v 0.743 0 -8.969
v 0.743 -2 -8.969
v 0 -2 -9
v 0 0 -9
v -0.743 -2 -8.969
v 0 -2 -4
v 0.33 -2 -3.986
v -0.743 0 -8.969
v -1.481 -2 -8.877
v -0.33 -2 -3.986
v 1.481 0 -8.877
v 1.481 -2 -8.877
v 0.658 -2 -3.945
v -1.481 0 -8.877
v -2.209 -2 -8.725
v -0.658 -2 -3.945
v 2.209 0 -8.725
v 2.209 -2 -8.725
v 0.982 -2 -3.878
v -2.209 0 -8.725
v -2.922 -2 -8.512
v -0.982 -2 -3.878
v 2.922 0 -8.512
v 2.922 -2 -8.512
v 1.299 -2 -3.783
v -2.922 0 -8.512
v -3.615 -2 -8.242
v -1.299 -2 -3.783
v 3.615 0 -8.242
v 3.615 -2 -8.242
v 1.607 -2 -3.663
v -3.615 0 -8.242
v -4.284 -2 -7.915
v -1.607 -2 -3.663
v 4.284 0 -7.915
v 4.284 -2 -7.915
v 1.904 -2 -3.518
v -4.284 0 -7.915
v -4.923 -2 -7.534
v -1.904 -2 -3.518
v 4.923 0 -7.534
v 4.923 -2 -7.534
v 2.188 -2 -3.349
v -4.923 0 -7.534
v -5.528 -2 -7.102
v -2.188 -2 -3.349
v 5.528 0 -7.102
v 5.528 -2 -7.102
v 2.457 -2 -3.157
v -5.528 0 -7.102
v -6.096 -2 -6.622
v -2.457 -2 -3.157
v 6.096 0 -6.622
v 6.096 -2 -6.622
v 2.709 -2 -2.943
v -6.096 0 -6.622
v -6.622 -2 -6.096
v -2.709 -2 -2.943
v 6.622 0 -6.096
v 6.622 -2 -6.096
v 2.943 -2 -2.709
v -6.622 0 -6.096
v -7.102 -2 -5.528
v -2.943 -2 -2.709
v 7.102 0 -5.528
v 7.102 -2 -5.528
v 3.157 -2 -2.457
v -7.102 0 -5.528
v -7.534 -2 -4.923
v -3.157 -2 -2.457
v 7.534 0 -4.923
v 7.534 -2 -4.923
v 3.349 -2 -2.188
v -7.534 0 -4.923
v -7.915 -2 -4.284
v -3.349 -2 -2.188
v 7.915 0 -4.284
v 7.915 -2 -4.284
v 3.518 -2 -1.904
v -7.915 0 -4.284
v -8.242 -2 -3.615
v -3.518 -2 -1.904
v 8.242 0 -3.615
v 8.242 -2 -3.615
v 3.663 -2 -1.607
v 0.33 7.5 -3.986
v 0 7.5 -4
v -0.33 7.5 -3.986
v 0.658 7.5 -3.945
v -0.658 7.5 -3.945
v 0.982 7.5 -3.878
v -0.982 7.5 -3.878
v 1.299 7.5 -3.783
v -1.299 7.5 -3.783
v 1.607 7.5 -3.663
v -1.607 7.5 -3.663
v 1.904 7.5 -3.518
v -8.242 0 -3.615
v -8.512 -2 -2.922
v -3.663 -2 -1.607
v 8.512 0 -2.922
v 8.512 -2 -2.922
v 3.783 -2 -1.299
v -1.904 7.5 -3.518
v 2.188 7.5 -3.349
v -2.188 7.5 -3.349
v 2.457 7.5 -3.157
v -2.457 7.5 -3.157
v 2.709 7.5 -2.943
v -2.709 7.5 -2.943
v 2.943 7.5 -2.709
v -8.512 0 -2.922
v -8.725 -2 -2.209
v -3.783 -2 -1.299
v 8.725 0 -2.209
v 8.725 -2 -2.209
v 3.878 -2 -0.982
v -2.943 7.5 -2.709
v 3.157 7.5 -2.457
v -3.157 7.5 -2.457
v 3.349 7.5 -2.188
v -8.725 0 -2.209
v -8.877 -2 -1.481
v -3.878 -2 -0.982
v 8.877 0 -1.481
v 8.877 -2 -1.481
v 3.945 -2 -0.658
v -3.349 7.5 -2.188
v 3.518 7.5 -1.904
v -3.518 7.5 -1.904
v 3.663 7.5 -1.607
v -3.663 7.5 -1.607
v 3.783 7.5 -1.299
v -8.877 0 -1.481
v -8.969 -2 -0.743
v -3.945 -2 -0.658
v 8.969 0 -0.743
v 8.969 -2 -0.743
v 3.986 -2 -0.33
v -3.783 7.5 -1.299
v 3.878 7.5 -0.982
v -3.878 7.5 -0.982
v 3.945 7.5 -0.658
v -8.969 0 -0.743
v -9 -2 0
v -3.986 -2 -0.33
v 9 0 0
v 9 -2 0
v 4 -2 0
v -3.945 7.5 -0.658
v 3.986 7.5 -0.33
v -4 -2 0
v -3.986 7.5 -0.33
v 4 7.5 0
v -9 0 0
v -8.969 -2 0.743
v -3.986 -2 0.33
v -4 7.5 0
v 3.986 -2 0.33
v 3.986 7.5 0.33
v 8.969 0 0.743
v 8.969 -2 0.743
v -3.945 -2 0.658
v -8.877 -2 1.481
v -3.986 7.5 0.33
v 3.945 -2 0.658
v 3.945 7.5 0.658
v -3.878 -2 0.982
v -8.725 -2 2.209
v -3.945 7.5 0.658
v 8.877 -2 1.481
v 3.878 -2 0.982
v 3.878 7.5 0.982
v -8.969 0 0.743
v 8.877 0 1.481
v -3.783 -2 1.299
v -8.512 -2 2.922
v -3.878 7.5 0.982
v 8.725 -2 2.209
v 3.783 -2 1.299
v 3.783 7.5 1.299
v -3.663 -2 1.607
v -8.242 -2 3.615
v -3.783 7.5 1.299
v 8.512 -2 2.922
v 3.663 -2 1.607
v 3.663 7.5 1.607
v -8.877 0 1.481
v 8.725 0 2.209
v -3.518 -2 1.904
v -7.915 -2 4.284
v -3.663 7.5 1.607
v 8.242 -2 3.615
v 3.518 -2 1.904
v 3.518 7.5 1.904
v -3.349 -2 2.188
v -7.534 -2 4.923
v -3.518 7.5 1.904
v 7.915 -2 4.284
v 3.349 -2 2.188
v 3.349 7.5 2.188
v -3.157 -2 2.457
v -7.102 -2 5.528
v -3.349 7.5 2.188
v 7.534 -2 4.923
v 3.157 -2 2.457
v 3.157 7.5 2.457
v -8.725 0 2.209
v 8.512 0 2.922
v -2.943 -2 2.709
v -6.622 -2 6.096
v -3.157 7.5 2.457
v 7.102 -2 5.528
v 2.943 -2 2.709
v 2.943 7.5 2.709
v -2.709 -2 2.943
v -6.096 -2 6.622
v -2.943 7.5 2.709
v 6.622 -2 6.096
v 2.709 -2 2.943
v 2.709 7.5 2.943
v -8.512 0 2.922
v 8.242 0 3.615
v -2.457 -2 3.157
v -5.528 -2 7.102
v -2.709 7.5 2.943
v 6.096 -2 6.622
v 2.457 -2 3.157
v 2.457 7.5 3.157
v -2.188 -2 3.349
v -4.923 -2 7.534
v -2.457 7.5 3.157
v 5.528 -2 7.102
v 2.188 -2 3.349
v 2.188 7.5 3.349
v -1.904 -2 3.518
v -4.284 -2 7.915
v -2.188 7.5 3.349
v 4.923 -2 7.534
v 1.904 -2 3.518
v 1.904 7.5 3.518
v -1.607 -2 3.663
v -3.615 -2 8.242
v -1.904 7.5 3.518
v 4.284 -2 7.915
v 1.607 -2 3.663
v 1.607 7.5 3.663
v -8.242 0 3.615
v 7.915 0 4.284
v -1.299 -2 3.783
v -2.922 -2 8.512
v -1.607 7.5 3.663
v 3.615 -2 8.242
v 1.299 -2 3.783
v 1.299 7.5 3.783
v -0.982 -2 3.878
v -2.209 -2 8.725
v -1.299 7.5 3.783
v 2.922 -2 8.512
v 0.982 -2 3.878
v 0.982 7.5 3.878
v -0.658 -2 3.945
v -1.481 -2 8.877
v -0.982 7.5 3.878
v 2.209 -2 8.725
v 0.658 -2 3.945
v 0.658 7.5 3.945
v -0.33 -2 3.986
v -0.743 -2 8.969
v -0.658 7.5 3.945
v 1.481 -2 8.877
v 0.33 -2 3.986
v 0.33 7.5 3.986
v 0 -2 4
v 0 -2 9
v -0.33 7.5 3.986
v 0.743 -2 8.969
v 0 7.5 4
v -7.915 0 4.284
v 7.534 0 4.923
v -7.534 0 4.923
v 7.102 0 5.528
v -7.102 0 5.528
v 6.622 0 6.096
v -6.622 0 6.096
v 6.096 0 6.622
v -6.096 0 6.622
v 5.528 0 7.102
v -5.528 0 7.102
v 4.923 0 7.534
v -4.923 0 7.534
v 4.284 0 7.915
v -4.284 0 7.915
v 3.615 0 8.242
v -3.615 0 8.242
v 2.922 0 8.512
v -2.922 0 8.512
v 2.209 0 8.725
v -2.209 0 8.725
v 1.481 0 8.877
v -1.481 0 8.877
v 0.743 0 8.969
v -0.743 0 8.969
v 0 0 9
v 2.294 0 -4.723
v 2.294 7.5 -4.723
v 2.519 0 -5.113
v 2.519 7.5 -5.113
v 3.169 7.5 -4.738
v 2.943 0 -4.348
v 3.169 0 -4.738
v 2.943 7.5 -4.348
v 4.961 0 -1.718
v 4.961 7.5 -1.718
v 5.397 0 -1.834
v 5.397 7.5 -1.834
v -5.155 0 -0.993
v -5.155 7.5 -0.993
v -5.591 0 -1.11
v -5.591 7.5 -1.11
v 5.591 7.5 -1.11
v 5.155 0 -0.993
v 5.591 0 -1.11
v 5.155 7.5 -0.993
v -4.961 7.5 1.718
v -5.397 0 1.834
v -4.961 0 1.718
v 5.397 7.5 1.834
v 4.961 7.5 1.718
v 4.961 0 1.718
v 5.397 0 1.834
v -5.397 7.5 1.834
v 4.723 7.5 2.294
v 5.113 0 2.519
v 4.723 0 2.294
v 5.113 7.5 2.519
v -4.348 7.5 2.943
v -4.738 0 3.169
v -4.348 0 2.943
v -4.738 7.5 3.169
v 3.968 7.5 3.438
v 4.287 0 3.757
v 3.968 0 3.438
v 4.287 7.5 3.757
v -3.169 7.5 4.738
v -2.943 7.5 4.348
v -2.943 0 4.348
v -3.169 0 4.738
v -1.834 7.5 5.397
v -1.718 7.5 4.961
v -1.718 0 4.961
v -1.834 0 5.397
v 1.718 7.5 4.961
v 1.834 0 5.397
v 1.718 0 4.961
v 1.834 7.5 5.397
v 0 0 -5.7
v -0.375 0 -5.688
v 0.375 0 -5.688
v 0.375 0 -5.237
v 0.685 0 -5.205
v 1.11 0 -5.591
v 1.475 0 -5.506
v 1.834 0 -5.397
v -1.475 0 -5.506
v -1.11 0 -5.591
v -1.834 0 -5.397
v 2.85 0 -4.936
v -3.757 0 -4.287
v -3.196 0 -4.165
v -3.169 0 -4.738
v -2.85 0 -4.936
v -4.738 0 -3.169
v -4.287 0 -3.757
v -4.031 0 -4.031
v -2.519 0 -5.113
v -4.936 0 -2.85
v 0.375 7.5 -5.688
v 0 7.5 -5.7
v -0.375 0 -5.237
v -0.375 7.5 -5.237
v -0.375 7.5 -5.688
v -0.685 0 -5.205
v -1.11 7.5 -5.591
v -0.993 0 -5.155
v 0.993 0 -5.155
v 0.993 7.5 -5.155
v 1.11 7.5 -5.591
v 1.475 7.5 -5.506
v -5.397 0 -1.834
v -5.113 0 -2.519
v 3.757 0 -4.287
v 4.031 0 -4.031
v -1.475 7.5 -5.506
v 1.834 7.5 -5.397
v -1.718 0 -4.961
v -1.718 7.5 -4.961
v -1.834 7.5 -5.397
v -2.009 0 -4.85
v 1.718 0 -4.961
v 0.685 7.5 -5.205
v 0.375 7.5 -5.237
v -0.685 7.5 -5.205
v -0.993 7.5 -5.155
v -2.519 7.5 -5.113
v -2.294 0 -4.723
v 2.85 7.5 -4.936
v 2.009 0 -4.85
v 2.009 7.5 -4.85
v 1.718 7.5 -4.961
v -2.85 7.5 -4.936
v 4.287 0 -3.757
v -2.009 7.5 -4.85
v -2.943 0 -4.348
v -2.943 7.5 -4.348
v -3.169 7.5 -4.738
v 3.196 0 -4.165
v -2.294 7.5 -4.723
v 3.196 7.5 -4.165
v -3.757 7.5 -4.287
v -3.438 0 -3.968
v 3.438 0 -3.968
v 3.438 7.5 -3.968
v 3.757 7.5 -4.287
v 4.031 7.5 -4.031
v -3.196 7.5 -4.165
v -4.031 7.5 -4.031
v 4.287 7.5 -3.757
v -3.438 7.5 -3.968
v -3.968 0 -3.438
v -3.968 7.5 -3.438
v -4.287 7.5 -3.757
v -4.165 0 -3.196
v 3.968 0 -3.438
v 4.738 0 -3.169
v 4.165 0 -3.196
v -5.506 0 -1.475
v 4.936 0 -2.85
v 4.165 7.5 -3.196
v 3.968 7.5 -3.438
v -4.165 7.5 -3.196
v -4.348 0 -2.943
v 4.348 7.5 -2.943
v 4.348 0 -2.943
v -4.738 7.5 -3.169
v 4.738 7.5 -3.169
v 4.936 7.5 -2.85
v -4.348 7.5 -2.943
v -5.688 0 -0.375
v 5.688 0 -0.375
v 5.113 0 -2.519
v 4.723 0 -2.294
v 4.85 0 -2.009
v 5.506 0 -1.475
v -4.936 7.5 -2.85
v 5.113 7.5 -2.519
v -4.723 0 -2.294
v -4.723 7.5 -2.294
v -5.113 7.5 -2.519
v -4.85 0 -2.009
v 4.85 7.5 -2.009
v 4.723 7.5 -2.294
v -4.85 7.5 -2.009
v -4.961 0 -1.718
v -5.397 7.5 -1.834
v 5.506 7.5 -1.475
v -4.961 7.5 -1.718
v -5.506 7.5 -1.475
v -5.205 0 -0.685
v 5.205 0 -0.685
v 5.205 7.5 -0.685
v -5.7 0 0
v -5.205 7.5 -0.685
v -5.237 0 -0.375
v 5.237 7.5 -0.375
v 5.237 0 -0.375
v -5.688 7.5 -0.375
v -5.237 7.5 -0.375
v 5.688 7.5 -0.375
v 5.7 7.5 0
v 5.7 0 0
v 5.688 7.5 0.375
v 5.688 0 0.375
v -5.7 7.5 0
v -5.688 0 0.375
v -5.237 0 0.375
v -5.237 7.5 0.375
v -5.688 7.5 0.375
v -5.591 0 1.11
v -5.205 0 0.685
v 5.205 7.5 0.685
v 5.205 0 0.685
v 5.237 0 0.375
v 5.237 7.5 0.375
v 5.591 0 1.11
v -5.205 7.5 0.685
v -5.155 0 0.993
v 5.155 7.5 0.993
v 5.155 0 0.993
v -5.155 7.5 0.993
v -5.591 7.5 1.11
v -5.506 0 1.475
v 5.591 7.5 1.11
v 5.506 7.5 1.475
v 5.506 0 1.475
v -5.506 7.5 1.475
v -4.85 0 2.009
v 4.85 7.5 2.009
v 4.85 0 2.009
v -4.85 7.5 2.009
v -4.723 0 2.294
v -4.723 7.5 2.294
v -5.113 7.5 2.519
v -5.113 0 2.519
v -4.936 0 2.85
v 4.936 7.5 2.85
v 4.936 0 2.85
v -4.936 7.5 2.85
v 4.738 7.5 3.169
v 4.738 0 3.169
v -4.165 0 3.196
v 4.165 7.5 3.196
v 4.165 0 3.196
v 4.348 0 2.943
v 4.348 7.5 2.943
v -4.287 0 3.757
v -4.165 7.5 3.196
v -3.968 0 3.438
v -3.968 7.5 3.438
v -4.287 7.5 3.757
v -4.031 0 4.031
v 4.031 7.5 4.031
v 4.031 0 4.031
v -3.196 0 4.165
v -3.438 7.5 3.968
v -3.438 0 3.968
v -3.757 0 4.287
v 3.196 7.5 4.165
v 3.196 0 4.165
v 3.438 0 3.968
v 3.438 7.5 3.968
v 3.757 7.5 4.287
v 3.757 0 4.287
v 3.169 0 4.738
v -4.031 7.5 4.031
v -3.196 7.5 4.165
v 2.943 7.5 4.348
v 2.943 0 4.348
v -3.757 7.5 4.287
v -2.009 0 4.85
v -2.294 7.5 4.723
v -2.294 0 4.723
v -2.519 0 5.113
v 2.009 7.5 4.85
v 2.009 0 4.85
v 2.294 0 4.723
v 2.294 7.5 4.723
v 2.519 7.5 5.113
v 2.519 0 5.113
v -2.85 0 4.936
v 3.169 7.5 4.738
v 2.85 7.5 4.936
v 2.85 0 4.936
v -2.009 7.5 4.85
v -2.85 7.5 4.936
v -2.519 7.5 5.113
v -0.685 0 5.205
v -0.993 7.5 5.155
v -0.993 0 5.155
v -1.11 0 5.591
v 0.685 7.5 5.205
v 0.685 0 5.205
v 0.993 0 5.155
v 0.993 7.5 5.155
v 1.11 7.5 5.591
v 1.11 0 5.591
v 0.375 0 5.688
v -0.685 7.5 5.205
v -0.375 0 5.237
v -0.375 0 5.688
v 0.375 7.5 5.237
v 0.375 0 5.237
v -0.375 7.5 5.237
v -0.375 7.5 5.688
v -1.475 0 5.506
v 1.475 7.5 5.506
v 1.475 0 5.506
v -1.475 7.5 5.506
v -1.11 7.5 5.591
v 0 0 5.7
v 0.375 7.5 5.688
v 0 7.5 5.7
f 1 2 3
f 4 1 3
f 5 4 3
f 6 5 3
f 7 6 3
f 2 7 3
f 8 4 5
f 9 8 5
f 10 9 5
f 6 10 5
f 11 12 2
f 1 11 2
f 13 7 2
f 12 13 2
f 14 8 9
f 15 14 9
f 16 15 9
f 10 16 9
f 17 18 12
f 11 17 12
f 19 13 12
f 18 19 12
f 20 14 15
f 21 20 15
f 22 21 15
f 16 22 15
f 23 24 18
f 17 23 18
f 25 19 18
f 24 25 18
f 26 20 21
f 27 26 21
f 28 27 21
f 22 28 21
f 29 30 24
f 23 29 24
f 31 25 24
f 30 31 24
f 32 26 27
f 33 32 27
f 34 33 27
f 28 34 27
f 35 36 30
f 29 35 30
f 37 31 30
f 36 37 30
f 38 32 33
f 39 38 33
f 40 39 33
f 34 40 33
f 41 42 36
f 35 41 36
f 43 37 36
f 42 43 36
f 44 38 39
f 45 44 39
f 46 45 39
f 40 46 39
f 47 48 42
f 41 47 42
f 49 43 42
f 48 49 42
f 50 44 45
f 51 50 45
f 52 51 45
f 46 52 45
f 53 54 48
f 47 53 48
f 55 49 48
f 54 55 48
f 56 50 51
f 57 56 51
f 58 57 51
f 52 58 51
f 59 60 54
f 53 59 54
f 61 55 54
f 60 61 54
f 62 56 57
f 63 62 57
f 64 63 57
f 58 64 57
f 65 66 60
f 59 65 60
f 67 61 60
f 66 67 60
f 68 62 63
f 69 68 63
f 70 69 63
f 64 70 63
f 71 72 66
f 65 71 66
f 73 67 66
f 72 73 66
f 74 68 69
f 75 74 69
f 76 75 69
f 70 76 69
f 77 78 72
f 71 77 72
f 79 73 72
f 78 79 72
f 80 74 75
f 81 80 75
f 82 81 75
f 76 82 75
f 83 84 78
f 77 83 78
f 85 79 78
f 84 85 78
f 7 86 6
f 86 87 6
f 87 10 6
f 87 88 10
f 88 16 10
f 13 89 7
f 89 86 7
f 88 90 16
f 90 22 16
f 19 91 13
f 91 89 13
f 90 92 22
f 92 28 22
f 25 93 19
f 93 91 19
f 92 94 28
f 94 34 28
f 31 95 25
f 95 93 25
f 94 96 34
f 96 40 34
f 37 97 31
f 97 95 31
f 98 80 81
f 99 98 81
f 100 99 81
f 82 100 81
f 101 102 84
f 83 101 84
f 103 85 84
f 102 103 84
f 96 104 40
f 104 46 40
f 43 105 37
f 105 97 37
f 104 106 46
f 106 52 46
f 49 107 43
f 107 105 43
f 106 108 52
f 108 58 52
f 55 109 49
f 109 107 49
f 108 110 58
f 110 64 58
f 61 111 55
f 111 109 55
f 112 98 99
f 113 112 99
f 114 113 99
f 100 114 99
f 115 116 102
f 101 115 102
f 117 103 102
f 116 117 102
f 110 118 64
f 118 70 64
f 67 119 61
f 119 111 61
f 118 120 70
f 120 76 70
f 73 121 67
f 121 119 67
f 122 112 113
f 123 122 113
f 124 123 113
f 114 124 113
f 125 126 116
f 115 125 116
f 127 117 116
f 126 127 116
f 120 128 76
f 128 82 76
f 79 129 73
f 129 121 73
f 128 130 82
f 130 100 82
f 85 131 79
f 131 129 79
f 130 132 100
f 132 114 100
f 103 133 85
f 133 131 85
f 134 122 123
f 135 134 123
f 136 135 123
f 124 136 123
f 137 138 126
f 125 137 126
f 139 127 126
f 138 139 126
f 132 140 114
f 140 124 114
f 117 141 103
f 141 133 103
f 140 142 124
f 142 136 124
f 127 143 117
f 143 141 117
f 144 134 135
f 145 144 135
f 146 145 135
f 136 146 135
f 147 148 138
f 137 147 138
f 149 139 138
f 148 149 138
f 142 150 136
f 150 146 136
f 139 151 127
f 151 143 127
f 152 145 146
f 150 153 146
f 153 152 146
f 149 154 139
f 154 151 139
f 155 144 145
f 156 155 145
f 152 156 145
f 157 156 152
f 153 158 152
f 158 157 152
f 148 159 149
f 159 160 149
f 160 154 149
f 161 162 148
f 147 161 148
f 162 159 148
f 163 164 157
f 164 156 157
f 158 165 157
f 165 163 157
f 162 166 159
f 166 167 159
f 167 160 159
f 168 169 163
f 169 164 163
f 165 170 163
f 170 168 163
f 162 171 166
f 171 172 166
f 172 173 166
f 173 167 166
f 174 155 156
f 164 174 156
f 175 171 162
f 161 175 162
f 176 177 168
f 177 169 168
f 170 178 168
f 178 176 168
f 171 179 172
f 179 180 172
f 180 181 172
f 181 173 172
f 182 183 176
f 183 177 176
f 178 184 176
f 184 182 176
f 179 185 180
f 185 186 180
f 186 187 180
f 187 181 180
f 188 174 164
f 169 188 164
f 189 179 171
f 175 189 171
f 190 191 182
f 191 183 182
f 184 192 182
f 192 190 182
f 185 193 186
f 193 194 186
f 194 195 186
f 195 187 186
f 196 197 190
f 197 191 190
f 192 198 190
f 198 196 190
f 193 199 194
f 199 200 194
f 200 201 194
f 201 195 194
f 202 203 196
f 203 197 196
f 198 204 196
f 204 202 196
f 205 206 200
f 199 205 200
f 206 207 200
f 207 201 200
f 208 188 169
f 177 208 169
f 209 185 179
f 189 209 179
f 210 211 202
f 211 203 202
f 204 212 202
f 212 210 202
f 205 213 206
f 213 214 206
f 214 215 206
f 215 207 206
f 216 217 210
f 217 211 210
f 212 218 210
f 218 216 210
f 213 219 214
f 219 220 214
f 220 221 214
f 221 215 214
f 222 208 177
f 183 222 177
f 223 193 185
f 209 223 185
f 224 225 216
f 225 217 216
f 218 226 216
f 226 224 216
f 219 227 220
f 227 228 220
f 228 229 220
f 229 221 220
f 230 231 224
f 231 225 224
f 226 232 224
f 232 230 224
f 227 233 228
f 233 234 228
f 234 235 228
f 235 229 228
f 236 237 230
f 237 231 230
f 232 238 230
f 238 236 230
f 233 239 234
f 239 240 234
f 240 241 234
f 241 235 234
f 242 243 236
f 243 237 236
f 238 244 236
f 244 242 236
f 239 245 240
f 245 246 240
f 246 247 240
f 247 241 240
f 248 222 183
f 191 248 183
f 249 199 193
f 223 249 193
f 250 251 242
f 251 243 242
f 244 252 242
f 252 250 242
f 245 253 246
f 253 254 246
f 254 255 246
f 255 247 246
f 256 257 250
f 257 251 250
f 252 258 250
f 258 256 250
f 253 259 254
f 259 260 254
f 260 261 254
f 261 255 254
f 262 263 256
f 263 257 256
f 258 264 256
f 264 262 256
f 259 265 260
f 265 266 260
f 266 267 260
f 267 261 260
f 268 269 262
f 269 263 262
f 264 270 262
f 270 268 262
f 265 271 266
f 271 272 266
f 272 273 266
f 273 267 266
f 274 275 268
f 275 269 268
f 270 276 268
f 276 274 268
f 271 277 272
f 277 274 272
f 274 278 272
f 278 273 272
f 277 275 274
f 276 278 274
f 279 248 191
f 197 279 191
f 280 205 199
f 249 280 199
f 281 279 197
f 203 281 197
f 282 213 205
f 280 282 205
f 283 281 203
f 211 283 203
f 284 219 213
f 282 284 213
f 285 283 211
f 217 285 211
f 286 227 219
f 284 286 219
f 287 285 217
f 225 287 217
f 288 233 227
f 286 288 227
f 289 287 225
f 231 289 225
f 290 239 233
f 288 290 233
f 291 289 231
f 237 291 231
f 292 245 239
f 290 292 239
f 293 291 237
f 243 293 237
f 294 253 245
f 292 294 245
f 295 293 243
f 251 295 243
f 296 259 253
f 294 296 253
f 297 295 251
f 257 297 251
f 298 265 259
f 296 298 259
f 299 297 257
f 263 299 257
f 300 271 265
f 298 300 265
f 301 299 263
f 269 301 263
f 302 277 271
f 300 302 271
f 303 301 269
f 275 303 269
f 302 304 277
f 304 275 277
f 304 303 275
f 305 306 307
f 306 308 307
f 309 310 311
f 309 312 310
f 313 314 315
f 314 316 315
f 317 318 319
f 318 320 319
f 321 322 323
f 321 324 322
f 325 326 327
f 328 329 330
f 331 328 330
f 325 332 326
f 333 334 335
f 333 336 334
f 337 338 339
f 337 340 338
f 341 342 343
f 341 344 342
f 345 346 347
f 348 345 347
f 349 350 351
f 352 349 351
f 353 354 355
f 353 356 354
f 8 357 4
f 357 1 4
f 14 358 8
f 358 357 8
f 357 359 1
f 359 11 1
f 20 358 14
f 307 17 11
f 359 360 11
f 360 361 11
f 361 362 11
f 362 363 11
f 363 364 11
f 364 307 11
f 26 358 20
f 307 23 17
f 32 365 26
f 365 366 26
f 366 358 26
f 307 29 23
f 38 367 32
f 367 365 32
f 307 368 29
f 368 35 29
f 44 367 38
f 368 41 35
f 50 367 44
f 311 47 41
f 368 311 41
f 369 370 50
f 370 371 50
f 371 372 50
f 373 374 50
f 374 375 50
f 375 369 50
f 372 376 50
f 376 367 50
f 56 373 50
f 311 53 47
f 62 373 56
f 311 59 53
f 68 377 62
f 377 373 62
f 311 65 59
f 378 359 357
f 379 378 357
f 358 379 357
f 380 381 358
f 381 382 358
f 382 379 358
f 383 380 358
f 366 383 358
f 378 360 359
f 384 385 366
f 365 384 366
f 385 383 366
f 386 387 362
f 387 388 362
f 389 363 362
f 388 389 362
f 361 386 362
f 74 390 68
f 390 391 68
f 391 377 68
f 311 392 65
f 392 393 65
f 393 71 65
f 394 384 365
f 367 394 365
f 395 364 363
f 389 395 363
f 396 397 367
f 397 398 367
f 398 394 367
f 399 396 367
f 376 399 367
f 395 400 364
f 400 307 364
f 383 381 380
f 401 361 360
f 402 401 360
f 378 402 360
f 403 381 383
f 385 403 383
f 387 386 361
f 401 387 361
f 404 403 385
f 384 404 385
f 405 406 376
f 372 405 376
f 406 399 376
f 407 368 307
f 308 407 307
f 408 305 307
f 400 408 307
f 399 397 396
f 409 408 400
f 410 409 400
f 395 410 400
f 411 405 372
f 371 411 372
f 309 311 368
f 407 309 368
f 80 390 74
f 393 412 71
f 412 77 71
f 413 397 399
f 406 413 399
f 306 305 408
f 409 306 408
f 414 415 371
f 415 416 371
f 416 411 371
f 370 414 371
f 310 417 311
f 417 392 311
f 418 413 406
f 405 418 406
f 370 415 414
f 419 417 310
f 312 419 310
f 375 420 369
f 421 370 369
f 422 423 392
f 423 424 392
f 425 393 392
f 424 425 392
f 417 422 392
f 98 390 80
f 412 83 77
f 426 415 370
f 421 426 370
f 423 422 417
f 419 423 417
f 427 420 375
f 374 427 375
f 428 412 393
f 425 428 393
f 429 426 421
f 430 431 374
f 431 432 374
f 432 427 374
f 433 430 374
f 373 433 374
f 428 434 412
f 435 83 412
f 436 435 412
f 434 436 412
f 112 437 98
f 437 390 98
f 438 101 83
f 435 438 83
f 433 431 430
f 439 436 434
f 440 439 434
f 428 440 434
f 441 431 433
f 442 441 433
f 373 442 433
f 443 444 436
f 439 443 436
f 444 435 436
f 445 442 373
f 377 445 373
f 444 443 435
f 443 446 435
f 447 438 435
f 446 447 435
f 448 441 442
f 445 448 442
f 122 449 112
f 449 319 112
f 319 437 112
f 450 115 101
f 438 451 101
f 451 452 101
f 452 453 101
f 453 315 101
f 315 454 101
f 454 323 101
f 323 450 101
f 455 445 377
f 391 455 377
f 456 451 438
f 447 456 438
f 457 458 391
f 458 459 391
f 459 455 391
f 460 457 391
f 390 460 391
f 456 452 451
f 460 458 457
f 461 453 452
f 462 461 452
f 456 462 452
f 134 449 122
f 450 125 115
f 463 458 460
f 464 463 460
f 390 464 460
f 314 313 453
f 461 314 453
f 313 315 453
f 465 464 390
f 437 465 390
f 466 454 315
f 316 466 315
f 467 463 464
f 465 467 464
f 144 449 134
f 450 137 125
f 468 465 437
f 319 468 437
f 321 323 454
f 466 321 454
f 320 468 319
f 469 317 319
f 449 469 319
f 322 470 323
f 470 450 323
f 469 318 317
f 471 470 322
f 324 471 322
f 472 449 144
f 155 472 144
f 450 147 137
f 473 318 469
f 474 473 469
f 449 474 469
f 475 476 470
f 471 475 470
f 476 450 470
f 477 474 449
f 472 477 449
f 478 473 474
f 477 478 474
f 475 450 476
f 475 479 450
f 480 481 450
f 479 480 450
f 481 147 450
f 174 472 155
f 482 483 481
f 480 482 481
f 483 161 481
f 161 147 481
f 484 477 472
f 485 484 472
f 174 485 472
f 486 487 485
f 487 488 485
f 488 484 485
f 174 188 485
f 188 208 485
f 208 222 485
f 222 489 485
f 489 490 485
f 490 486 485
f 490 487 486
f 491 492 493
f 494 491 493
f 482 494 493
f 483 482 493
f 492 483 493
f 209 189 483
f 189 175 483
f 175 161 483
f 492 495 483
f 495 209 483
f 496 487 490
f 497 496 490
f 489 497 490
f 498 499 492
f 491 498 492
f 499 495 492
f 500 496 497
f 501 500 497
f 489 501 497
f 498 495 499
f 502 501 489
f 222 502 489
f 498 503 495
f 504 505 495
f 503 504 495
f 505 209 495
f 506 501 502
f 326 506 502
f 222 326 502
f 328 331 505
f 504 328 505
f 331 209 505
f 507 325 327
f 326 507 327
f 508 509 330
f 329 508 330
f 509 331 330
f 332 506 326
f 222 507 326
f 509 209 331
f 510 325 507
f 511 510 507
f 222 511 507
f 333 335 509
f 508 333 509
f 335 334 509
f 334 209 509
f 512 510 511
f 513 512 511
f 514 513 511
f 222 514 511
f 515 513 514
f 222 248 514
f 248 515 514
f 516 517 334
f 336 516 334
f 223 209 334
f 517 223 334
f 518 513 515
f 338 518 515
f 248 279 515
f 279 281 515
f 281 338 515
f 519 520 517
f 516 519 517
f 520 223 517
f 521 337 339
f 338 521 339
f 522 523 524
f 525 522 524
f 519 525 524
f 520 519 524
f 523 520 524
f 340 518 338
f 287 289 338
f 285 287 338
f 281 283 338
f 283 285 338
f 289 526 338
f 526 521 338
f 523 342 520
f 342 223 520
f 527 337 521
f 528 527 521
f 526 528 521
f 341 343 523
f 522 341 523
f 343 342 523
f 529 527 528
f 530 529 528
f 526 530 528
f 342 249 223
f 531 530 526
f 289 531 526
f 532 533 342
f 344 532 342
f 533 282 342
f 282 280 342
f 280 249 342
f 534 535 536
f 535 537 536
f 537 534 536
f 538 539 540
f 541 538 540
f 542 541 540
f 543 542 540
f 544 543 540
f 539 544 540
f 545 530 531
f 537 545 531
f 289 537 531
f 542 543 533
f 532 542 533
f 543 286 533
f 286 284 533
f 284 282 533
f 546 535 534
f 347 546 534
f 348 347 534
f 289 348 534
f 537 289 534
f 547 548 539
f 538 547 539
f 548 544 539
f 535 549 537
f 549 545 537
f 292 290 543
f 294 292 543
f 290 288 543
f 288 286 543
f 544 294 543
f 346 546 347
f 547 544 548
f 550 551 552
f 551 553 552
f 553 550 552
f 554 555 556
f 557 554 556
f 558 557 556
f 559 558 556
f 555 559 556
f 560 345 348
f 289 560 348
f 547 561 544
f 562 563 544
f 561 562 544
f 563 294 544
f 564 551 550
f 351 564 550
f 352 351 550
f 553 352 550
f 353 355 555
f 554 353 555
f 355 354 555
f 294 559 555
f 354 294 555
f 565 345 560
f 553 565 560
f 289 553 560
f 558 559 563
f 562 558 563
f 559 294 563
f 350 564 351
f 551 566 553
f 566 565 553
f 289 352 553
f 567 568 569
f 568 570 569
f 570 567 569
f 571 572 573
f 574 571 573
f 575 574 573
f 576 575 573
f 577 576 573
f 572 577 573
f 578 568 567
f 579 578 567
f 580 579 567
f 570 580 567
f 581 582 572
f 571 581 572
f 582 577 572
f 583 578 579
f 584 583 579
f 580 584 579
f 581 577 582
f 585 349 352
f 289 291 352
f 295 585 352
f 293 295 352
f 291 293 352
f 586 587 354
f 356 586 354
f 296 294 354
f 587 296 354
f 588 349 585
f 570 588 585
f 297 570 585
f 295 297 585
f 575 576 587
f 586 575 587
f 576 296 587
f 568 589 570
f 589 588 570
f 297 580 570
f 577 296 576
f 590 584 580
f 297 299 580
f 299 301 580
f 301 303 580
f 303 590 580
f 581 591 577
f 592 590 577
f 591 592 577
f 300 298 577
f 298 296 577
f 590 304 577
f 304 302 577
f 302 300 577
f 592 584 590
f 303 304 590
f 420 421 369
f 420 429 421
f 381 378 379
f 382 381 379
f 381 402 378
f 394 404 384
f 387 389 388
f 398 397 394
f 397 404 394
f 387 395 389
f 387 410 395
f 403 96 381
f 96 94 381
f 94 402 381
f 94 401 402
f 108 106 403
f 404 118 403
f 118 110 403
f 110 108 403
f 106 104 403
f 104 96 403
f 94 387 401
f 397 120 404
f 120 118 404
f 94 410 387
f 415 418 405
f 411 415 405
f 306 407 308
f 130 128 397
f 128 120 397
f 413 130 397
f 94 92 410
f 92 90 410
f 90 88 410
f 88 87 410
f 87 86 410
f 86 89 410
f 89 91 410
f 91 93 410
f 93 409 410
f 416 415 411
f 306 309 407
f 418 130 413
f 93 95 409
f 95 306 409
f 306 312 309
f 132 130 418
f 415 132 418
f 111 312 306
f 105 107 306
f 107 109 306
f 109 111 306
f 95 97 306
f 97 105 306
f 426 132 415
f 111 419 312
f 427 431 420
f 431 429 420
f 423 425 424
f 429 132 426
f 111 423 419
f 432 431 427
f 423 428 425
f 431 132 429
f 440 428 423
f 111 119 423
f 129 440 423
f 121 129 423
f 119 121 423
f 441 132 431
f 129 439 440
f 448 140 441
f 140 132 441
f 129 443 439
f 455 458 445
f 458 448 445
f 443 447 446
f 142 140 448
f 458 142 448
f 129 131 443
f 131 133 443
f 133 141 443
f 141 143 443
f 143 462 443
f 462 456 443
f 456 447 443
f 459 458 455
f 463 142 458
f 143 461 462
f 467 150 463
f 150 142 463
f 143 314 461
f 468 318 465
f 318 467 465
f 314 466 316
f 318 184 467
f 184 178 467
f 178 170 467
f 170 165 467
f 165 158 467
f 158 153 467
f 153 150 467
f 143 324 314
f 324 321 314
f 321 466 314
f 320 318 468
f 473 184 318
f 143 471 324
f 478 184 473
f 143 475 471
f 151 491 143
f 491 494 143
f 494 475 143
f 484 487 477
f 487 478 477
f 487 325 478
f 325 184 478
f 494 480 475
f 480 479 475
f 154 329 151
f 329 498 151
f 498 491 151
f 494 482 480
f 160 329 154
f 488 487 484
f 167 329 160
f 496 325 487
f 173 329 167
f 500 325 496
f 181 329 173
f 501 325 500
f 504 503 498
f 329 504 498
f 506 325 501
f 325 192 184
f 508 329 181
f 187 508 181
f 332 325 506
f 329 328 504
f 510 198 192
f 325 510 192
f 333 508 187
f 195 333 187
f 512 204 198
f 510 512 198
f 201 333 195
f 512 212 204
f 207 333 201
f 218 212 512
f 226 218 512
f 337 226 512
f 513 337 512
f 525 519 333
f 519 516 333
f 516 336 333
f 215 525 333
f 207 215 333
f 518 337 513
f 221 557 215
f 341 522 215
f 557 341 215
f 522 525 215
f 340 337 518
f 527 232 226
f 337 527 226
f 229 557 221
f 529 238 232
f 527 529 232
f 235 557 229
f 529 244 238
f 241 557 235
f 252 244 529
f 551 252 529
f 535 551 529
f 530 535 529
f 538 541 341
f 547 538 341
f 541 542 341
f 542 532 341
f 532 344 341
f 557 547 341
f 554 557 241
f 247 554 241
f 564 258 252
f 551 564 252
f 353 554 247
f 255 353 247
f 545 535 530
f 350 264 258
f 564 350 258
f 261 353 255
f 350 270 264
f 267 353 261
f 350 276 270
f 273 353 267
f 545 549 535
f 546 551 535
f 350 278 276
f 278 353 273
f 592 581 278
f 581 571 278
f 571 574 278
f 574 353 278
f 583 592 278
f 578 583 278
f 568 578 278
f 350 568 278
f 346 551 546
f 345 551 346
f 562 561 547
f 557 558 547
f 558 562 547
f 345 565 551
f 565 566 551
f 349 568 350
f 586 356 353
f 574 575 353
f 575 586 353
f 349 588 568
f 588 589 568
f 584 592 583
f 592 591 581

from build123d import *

# Parameters (mm, degrees)
SKETCH1_R           = 5.25
BOSS_EXTRUDE1_DEPTH = 7.5
SKETCH2_W           = 6
SKETCH2_H           = 0.75
SKETCH2_W_2         = 0.75
SKETCH2_H_2         = 6
BOSS_EXTRUDE2_DEPTH = 7.5
SKETCH5_W           = 10
SKETCH5_H           = 10
SKETCH6_R           = 9
BOSS_EXTRUDE3_DEPTH = 2
SKETCH7_R           = 4
CUT_EXTRUDE2_DEPTH  = 16.882380174


with BuildPart() as part:
    # Sketch1 → Boss-Extrude1 (new body)
    with BuildSketch(Plane(origin=(0, 0, 0), x_dir=(1, 0, 0), z_dir=(0, 1, 0))):
        with Locations(Location((0, 0, 0), (0, 0, 270))):
            Circle(SKETCH1_R)
    extrude(amount=BOSS_EXTRUDE1_DEPTH)

    # Sketch2 → Boss-Extrude2 (add)
    with BuildSketch(Plane.XZ):
        with Locations((8, 0)):
            Rectangle(SKETCH2_W, SKETCH2_H)
        Polygon((10.528126947, -3.209231681), (4.73257199, -1.65631741), (4.926686273, -0.931873041), (10.722241231, -2.484787311), align=None)
        Polygon((9.338779442, -5.824759526), (4.142627019, -2.824759526), (4.517627019, -2.175240474), (9.713779442, -5.175240474), align=None)
        Polygon((7.51300955, -8.043339636), (3.270368863, -3.800698949), (3.800698949, -3.270368863), (8.043339636, -7.51300955), align=None)
        Polygon((5.175240474, -9.713779442), (2.175240474, -4.517627019), (2.824759526, -4.142627019), (5.824759526, -9.338779442), align=None)
        Polygon((2.484787311, -10.722241231), (0.931873041, -4.926686273), (1.65631741, -4.73257199), (3.209231681, -10.528126947), align=None)
        with Locations((0, -8)):
            Rectangle(SKETCH2_W_2, SKETCH2_H_2)
        Polygon((-3.209231681, -10.528126947), (-1.65631741, -4.73257199), (-0.931873041, -4.926686273), (-2.484787311, -10.722241231), align=None)
        Polygon((-5.824759526, -9.338779442), (-2.824759526, -4.142627019), (-2.175240474, -4.517627019), (-5.175240474, -9.713779442), align=None)
        Polygon((-8.043339636, -7.51300955), (-3.800698949, -3.270368863), (-3.270368863, -3.800698949), (-7.51300955, -8.043339636), align=None)
        Polygon((-9.713779442, -5.175240474), (-4.517627019, -2.175240474), (-4.142627019, -2.824759526), (-9.338779442, -5.824759526), align=None)
        Polygon((-10.722241231, -2.484787311), (-4.926686273, -0.931873041), (-4.73257199, -1.65631741), (-10.528126947, -3.209231681), align=None)
        with Locations((-8, 0)):
            Rectangle(SKETCH2_W, SKETCH2_H)
        Polygon((-10.528126947, 3.209231681), (-4.73257199, 1.65631741), (-4.926686273, 0.931873041), (-10.722241231, 2.484787311), align=None)
        Polygon((-9.338779442, 5.824759526), (-4.142627019, 2.824759526), (-4.517627019, 2.175240474), (-9.713779442, 5.175240474), align=None)
        Polygon((-7.51300955, 8.043339636), (-3.270368863, 3.800698949), (-3.800698949, 3.270368863), (-8.043339636, 7.51300955), align=None)
        Polygon((-5.175240474, 9.713779442), (-2.175240474, 4.517627019), (-2.824759526, 4.142627019), (-5.824759526, 9.338779442), align=None)
        Polygon((-2.484787311, 10.722241231), (-0.931873041, 4.926686273), (-1.65631741, 4.73257199), (-3.209231681, 10.528126947), align=None)
        with Locations((0, 8)):
            Rectangle(SKETCH2_W_2, SKETCH2_H_2)
        Polygon((3.209231681, 10.528126947), (1.65631741, 4.73257199), (0.931873041, 4.926686273), (2.484787311, 10.722241231), align=None)
        Polygon((5.824759526, 9.338779442), (2.824759526, 4.142627019), (2.175240474, 4.517627019), (5.175240474, 9.713779442), align=None)
        Polygon((8.043339636, 7.51300955), (3.800698949, 3.270368863), (3.270368863, 3.800698949), (7.51300955, 8.043339636), align=None)
        Polygon((9.713779442, 5.175240474), (4.517627019, 2.175240474), (4.142627019, 2.824759526), (9.338779442, 5.824759526), align=None)
        Polygon((10.722241231, 2.484787311), (4.926686273, 0.931873041), (4.73257199, 1.65631741), (10.528126947, 3.209231681), align=None)
    extrude(amount=-BOSS_EXTRUDE2_DEPTH)

    # Sketch5 → Cut-Revolve1 (revolve, cut)
    with BuildSketch(Plane(origin=(0, 0, 0), x_dir=(0, 0, -1), z_dir=(1, 0, 0))):
        with Locations((10.7, 4)):
            Rectangle(SKETCH5_W, SKETCH5_H)
    revolve(axis=Axis((0, 0, 0), (0, 1, 0)), mode=Mode.SUBTRACT)

    # Sketch6 → Boss-Extrude3 (add)
    with BuildSketch(Plane(origin=(0, 0, 0), x_dir=(1, 0, 0), z_dir=(0, 1, 0))):
        with Locations(Location((0, 0, 0), (0, 0, 270))):
            Circle(SKETCH6_R)
    extrude(amount=-BOSS_EXTRUDE3_DEPTH)

    # Sketch7 → Cut-Extrude2 (cut, through all)
    with BuildSketch(Plane(origin=(0, 7.5, 0), x_dir=(1, 0, 0), z_dir=(0, 1, 0))):
        with Locations(Location((0, 0, 0), (0, 0, 270))):
            Circle(SKETCH7_R)
    extrude(amount=-CUT_EXTRUDE2_DEPTH, mode=Mode.SUBTRACT)


solid = part.part
